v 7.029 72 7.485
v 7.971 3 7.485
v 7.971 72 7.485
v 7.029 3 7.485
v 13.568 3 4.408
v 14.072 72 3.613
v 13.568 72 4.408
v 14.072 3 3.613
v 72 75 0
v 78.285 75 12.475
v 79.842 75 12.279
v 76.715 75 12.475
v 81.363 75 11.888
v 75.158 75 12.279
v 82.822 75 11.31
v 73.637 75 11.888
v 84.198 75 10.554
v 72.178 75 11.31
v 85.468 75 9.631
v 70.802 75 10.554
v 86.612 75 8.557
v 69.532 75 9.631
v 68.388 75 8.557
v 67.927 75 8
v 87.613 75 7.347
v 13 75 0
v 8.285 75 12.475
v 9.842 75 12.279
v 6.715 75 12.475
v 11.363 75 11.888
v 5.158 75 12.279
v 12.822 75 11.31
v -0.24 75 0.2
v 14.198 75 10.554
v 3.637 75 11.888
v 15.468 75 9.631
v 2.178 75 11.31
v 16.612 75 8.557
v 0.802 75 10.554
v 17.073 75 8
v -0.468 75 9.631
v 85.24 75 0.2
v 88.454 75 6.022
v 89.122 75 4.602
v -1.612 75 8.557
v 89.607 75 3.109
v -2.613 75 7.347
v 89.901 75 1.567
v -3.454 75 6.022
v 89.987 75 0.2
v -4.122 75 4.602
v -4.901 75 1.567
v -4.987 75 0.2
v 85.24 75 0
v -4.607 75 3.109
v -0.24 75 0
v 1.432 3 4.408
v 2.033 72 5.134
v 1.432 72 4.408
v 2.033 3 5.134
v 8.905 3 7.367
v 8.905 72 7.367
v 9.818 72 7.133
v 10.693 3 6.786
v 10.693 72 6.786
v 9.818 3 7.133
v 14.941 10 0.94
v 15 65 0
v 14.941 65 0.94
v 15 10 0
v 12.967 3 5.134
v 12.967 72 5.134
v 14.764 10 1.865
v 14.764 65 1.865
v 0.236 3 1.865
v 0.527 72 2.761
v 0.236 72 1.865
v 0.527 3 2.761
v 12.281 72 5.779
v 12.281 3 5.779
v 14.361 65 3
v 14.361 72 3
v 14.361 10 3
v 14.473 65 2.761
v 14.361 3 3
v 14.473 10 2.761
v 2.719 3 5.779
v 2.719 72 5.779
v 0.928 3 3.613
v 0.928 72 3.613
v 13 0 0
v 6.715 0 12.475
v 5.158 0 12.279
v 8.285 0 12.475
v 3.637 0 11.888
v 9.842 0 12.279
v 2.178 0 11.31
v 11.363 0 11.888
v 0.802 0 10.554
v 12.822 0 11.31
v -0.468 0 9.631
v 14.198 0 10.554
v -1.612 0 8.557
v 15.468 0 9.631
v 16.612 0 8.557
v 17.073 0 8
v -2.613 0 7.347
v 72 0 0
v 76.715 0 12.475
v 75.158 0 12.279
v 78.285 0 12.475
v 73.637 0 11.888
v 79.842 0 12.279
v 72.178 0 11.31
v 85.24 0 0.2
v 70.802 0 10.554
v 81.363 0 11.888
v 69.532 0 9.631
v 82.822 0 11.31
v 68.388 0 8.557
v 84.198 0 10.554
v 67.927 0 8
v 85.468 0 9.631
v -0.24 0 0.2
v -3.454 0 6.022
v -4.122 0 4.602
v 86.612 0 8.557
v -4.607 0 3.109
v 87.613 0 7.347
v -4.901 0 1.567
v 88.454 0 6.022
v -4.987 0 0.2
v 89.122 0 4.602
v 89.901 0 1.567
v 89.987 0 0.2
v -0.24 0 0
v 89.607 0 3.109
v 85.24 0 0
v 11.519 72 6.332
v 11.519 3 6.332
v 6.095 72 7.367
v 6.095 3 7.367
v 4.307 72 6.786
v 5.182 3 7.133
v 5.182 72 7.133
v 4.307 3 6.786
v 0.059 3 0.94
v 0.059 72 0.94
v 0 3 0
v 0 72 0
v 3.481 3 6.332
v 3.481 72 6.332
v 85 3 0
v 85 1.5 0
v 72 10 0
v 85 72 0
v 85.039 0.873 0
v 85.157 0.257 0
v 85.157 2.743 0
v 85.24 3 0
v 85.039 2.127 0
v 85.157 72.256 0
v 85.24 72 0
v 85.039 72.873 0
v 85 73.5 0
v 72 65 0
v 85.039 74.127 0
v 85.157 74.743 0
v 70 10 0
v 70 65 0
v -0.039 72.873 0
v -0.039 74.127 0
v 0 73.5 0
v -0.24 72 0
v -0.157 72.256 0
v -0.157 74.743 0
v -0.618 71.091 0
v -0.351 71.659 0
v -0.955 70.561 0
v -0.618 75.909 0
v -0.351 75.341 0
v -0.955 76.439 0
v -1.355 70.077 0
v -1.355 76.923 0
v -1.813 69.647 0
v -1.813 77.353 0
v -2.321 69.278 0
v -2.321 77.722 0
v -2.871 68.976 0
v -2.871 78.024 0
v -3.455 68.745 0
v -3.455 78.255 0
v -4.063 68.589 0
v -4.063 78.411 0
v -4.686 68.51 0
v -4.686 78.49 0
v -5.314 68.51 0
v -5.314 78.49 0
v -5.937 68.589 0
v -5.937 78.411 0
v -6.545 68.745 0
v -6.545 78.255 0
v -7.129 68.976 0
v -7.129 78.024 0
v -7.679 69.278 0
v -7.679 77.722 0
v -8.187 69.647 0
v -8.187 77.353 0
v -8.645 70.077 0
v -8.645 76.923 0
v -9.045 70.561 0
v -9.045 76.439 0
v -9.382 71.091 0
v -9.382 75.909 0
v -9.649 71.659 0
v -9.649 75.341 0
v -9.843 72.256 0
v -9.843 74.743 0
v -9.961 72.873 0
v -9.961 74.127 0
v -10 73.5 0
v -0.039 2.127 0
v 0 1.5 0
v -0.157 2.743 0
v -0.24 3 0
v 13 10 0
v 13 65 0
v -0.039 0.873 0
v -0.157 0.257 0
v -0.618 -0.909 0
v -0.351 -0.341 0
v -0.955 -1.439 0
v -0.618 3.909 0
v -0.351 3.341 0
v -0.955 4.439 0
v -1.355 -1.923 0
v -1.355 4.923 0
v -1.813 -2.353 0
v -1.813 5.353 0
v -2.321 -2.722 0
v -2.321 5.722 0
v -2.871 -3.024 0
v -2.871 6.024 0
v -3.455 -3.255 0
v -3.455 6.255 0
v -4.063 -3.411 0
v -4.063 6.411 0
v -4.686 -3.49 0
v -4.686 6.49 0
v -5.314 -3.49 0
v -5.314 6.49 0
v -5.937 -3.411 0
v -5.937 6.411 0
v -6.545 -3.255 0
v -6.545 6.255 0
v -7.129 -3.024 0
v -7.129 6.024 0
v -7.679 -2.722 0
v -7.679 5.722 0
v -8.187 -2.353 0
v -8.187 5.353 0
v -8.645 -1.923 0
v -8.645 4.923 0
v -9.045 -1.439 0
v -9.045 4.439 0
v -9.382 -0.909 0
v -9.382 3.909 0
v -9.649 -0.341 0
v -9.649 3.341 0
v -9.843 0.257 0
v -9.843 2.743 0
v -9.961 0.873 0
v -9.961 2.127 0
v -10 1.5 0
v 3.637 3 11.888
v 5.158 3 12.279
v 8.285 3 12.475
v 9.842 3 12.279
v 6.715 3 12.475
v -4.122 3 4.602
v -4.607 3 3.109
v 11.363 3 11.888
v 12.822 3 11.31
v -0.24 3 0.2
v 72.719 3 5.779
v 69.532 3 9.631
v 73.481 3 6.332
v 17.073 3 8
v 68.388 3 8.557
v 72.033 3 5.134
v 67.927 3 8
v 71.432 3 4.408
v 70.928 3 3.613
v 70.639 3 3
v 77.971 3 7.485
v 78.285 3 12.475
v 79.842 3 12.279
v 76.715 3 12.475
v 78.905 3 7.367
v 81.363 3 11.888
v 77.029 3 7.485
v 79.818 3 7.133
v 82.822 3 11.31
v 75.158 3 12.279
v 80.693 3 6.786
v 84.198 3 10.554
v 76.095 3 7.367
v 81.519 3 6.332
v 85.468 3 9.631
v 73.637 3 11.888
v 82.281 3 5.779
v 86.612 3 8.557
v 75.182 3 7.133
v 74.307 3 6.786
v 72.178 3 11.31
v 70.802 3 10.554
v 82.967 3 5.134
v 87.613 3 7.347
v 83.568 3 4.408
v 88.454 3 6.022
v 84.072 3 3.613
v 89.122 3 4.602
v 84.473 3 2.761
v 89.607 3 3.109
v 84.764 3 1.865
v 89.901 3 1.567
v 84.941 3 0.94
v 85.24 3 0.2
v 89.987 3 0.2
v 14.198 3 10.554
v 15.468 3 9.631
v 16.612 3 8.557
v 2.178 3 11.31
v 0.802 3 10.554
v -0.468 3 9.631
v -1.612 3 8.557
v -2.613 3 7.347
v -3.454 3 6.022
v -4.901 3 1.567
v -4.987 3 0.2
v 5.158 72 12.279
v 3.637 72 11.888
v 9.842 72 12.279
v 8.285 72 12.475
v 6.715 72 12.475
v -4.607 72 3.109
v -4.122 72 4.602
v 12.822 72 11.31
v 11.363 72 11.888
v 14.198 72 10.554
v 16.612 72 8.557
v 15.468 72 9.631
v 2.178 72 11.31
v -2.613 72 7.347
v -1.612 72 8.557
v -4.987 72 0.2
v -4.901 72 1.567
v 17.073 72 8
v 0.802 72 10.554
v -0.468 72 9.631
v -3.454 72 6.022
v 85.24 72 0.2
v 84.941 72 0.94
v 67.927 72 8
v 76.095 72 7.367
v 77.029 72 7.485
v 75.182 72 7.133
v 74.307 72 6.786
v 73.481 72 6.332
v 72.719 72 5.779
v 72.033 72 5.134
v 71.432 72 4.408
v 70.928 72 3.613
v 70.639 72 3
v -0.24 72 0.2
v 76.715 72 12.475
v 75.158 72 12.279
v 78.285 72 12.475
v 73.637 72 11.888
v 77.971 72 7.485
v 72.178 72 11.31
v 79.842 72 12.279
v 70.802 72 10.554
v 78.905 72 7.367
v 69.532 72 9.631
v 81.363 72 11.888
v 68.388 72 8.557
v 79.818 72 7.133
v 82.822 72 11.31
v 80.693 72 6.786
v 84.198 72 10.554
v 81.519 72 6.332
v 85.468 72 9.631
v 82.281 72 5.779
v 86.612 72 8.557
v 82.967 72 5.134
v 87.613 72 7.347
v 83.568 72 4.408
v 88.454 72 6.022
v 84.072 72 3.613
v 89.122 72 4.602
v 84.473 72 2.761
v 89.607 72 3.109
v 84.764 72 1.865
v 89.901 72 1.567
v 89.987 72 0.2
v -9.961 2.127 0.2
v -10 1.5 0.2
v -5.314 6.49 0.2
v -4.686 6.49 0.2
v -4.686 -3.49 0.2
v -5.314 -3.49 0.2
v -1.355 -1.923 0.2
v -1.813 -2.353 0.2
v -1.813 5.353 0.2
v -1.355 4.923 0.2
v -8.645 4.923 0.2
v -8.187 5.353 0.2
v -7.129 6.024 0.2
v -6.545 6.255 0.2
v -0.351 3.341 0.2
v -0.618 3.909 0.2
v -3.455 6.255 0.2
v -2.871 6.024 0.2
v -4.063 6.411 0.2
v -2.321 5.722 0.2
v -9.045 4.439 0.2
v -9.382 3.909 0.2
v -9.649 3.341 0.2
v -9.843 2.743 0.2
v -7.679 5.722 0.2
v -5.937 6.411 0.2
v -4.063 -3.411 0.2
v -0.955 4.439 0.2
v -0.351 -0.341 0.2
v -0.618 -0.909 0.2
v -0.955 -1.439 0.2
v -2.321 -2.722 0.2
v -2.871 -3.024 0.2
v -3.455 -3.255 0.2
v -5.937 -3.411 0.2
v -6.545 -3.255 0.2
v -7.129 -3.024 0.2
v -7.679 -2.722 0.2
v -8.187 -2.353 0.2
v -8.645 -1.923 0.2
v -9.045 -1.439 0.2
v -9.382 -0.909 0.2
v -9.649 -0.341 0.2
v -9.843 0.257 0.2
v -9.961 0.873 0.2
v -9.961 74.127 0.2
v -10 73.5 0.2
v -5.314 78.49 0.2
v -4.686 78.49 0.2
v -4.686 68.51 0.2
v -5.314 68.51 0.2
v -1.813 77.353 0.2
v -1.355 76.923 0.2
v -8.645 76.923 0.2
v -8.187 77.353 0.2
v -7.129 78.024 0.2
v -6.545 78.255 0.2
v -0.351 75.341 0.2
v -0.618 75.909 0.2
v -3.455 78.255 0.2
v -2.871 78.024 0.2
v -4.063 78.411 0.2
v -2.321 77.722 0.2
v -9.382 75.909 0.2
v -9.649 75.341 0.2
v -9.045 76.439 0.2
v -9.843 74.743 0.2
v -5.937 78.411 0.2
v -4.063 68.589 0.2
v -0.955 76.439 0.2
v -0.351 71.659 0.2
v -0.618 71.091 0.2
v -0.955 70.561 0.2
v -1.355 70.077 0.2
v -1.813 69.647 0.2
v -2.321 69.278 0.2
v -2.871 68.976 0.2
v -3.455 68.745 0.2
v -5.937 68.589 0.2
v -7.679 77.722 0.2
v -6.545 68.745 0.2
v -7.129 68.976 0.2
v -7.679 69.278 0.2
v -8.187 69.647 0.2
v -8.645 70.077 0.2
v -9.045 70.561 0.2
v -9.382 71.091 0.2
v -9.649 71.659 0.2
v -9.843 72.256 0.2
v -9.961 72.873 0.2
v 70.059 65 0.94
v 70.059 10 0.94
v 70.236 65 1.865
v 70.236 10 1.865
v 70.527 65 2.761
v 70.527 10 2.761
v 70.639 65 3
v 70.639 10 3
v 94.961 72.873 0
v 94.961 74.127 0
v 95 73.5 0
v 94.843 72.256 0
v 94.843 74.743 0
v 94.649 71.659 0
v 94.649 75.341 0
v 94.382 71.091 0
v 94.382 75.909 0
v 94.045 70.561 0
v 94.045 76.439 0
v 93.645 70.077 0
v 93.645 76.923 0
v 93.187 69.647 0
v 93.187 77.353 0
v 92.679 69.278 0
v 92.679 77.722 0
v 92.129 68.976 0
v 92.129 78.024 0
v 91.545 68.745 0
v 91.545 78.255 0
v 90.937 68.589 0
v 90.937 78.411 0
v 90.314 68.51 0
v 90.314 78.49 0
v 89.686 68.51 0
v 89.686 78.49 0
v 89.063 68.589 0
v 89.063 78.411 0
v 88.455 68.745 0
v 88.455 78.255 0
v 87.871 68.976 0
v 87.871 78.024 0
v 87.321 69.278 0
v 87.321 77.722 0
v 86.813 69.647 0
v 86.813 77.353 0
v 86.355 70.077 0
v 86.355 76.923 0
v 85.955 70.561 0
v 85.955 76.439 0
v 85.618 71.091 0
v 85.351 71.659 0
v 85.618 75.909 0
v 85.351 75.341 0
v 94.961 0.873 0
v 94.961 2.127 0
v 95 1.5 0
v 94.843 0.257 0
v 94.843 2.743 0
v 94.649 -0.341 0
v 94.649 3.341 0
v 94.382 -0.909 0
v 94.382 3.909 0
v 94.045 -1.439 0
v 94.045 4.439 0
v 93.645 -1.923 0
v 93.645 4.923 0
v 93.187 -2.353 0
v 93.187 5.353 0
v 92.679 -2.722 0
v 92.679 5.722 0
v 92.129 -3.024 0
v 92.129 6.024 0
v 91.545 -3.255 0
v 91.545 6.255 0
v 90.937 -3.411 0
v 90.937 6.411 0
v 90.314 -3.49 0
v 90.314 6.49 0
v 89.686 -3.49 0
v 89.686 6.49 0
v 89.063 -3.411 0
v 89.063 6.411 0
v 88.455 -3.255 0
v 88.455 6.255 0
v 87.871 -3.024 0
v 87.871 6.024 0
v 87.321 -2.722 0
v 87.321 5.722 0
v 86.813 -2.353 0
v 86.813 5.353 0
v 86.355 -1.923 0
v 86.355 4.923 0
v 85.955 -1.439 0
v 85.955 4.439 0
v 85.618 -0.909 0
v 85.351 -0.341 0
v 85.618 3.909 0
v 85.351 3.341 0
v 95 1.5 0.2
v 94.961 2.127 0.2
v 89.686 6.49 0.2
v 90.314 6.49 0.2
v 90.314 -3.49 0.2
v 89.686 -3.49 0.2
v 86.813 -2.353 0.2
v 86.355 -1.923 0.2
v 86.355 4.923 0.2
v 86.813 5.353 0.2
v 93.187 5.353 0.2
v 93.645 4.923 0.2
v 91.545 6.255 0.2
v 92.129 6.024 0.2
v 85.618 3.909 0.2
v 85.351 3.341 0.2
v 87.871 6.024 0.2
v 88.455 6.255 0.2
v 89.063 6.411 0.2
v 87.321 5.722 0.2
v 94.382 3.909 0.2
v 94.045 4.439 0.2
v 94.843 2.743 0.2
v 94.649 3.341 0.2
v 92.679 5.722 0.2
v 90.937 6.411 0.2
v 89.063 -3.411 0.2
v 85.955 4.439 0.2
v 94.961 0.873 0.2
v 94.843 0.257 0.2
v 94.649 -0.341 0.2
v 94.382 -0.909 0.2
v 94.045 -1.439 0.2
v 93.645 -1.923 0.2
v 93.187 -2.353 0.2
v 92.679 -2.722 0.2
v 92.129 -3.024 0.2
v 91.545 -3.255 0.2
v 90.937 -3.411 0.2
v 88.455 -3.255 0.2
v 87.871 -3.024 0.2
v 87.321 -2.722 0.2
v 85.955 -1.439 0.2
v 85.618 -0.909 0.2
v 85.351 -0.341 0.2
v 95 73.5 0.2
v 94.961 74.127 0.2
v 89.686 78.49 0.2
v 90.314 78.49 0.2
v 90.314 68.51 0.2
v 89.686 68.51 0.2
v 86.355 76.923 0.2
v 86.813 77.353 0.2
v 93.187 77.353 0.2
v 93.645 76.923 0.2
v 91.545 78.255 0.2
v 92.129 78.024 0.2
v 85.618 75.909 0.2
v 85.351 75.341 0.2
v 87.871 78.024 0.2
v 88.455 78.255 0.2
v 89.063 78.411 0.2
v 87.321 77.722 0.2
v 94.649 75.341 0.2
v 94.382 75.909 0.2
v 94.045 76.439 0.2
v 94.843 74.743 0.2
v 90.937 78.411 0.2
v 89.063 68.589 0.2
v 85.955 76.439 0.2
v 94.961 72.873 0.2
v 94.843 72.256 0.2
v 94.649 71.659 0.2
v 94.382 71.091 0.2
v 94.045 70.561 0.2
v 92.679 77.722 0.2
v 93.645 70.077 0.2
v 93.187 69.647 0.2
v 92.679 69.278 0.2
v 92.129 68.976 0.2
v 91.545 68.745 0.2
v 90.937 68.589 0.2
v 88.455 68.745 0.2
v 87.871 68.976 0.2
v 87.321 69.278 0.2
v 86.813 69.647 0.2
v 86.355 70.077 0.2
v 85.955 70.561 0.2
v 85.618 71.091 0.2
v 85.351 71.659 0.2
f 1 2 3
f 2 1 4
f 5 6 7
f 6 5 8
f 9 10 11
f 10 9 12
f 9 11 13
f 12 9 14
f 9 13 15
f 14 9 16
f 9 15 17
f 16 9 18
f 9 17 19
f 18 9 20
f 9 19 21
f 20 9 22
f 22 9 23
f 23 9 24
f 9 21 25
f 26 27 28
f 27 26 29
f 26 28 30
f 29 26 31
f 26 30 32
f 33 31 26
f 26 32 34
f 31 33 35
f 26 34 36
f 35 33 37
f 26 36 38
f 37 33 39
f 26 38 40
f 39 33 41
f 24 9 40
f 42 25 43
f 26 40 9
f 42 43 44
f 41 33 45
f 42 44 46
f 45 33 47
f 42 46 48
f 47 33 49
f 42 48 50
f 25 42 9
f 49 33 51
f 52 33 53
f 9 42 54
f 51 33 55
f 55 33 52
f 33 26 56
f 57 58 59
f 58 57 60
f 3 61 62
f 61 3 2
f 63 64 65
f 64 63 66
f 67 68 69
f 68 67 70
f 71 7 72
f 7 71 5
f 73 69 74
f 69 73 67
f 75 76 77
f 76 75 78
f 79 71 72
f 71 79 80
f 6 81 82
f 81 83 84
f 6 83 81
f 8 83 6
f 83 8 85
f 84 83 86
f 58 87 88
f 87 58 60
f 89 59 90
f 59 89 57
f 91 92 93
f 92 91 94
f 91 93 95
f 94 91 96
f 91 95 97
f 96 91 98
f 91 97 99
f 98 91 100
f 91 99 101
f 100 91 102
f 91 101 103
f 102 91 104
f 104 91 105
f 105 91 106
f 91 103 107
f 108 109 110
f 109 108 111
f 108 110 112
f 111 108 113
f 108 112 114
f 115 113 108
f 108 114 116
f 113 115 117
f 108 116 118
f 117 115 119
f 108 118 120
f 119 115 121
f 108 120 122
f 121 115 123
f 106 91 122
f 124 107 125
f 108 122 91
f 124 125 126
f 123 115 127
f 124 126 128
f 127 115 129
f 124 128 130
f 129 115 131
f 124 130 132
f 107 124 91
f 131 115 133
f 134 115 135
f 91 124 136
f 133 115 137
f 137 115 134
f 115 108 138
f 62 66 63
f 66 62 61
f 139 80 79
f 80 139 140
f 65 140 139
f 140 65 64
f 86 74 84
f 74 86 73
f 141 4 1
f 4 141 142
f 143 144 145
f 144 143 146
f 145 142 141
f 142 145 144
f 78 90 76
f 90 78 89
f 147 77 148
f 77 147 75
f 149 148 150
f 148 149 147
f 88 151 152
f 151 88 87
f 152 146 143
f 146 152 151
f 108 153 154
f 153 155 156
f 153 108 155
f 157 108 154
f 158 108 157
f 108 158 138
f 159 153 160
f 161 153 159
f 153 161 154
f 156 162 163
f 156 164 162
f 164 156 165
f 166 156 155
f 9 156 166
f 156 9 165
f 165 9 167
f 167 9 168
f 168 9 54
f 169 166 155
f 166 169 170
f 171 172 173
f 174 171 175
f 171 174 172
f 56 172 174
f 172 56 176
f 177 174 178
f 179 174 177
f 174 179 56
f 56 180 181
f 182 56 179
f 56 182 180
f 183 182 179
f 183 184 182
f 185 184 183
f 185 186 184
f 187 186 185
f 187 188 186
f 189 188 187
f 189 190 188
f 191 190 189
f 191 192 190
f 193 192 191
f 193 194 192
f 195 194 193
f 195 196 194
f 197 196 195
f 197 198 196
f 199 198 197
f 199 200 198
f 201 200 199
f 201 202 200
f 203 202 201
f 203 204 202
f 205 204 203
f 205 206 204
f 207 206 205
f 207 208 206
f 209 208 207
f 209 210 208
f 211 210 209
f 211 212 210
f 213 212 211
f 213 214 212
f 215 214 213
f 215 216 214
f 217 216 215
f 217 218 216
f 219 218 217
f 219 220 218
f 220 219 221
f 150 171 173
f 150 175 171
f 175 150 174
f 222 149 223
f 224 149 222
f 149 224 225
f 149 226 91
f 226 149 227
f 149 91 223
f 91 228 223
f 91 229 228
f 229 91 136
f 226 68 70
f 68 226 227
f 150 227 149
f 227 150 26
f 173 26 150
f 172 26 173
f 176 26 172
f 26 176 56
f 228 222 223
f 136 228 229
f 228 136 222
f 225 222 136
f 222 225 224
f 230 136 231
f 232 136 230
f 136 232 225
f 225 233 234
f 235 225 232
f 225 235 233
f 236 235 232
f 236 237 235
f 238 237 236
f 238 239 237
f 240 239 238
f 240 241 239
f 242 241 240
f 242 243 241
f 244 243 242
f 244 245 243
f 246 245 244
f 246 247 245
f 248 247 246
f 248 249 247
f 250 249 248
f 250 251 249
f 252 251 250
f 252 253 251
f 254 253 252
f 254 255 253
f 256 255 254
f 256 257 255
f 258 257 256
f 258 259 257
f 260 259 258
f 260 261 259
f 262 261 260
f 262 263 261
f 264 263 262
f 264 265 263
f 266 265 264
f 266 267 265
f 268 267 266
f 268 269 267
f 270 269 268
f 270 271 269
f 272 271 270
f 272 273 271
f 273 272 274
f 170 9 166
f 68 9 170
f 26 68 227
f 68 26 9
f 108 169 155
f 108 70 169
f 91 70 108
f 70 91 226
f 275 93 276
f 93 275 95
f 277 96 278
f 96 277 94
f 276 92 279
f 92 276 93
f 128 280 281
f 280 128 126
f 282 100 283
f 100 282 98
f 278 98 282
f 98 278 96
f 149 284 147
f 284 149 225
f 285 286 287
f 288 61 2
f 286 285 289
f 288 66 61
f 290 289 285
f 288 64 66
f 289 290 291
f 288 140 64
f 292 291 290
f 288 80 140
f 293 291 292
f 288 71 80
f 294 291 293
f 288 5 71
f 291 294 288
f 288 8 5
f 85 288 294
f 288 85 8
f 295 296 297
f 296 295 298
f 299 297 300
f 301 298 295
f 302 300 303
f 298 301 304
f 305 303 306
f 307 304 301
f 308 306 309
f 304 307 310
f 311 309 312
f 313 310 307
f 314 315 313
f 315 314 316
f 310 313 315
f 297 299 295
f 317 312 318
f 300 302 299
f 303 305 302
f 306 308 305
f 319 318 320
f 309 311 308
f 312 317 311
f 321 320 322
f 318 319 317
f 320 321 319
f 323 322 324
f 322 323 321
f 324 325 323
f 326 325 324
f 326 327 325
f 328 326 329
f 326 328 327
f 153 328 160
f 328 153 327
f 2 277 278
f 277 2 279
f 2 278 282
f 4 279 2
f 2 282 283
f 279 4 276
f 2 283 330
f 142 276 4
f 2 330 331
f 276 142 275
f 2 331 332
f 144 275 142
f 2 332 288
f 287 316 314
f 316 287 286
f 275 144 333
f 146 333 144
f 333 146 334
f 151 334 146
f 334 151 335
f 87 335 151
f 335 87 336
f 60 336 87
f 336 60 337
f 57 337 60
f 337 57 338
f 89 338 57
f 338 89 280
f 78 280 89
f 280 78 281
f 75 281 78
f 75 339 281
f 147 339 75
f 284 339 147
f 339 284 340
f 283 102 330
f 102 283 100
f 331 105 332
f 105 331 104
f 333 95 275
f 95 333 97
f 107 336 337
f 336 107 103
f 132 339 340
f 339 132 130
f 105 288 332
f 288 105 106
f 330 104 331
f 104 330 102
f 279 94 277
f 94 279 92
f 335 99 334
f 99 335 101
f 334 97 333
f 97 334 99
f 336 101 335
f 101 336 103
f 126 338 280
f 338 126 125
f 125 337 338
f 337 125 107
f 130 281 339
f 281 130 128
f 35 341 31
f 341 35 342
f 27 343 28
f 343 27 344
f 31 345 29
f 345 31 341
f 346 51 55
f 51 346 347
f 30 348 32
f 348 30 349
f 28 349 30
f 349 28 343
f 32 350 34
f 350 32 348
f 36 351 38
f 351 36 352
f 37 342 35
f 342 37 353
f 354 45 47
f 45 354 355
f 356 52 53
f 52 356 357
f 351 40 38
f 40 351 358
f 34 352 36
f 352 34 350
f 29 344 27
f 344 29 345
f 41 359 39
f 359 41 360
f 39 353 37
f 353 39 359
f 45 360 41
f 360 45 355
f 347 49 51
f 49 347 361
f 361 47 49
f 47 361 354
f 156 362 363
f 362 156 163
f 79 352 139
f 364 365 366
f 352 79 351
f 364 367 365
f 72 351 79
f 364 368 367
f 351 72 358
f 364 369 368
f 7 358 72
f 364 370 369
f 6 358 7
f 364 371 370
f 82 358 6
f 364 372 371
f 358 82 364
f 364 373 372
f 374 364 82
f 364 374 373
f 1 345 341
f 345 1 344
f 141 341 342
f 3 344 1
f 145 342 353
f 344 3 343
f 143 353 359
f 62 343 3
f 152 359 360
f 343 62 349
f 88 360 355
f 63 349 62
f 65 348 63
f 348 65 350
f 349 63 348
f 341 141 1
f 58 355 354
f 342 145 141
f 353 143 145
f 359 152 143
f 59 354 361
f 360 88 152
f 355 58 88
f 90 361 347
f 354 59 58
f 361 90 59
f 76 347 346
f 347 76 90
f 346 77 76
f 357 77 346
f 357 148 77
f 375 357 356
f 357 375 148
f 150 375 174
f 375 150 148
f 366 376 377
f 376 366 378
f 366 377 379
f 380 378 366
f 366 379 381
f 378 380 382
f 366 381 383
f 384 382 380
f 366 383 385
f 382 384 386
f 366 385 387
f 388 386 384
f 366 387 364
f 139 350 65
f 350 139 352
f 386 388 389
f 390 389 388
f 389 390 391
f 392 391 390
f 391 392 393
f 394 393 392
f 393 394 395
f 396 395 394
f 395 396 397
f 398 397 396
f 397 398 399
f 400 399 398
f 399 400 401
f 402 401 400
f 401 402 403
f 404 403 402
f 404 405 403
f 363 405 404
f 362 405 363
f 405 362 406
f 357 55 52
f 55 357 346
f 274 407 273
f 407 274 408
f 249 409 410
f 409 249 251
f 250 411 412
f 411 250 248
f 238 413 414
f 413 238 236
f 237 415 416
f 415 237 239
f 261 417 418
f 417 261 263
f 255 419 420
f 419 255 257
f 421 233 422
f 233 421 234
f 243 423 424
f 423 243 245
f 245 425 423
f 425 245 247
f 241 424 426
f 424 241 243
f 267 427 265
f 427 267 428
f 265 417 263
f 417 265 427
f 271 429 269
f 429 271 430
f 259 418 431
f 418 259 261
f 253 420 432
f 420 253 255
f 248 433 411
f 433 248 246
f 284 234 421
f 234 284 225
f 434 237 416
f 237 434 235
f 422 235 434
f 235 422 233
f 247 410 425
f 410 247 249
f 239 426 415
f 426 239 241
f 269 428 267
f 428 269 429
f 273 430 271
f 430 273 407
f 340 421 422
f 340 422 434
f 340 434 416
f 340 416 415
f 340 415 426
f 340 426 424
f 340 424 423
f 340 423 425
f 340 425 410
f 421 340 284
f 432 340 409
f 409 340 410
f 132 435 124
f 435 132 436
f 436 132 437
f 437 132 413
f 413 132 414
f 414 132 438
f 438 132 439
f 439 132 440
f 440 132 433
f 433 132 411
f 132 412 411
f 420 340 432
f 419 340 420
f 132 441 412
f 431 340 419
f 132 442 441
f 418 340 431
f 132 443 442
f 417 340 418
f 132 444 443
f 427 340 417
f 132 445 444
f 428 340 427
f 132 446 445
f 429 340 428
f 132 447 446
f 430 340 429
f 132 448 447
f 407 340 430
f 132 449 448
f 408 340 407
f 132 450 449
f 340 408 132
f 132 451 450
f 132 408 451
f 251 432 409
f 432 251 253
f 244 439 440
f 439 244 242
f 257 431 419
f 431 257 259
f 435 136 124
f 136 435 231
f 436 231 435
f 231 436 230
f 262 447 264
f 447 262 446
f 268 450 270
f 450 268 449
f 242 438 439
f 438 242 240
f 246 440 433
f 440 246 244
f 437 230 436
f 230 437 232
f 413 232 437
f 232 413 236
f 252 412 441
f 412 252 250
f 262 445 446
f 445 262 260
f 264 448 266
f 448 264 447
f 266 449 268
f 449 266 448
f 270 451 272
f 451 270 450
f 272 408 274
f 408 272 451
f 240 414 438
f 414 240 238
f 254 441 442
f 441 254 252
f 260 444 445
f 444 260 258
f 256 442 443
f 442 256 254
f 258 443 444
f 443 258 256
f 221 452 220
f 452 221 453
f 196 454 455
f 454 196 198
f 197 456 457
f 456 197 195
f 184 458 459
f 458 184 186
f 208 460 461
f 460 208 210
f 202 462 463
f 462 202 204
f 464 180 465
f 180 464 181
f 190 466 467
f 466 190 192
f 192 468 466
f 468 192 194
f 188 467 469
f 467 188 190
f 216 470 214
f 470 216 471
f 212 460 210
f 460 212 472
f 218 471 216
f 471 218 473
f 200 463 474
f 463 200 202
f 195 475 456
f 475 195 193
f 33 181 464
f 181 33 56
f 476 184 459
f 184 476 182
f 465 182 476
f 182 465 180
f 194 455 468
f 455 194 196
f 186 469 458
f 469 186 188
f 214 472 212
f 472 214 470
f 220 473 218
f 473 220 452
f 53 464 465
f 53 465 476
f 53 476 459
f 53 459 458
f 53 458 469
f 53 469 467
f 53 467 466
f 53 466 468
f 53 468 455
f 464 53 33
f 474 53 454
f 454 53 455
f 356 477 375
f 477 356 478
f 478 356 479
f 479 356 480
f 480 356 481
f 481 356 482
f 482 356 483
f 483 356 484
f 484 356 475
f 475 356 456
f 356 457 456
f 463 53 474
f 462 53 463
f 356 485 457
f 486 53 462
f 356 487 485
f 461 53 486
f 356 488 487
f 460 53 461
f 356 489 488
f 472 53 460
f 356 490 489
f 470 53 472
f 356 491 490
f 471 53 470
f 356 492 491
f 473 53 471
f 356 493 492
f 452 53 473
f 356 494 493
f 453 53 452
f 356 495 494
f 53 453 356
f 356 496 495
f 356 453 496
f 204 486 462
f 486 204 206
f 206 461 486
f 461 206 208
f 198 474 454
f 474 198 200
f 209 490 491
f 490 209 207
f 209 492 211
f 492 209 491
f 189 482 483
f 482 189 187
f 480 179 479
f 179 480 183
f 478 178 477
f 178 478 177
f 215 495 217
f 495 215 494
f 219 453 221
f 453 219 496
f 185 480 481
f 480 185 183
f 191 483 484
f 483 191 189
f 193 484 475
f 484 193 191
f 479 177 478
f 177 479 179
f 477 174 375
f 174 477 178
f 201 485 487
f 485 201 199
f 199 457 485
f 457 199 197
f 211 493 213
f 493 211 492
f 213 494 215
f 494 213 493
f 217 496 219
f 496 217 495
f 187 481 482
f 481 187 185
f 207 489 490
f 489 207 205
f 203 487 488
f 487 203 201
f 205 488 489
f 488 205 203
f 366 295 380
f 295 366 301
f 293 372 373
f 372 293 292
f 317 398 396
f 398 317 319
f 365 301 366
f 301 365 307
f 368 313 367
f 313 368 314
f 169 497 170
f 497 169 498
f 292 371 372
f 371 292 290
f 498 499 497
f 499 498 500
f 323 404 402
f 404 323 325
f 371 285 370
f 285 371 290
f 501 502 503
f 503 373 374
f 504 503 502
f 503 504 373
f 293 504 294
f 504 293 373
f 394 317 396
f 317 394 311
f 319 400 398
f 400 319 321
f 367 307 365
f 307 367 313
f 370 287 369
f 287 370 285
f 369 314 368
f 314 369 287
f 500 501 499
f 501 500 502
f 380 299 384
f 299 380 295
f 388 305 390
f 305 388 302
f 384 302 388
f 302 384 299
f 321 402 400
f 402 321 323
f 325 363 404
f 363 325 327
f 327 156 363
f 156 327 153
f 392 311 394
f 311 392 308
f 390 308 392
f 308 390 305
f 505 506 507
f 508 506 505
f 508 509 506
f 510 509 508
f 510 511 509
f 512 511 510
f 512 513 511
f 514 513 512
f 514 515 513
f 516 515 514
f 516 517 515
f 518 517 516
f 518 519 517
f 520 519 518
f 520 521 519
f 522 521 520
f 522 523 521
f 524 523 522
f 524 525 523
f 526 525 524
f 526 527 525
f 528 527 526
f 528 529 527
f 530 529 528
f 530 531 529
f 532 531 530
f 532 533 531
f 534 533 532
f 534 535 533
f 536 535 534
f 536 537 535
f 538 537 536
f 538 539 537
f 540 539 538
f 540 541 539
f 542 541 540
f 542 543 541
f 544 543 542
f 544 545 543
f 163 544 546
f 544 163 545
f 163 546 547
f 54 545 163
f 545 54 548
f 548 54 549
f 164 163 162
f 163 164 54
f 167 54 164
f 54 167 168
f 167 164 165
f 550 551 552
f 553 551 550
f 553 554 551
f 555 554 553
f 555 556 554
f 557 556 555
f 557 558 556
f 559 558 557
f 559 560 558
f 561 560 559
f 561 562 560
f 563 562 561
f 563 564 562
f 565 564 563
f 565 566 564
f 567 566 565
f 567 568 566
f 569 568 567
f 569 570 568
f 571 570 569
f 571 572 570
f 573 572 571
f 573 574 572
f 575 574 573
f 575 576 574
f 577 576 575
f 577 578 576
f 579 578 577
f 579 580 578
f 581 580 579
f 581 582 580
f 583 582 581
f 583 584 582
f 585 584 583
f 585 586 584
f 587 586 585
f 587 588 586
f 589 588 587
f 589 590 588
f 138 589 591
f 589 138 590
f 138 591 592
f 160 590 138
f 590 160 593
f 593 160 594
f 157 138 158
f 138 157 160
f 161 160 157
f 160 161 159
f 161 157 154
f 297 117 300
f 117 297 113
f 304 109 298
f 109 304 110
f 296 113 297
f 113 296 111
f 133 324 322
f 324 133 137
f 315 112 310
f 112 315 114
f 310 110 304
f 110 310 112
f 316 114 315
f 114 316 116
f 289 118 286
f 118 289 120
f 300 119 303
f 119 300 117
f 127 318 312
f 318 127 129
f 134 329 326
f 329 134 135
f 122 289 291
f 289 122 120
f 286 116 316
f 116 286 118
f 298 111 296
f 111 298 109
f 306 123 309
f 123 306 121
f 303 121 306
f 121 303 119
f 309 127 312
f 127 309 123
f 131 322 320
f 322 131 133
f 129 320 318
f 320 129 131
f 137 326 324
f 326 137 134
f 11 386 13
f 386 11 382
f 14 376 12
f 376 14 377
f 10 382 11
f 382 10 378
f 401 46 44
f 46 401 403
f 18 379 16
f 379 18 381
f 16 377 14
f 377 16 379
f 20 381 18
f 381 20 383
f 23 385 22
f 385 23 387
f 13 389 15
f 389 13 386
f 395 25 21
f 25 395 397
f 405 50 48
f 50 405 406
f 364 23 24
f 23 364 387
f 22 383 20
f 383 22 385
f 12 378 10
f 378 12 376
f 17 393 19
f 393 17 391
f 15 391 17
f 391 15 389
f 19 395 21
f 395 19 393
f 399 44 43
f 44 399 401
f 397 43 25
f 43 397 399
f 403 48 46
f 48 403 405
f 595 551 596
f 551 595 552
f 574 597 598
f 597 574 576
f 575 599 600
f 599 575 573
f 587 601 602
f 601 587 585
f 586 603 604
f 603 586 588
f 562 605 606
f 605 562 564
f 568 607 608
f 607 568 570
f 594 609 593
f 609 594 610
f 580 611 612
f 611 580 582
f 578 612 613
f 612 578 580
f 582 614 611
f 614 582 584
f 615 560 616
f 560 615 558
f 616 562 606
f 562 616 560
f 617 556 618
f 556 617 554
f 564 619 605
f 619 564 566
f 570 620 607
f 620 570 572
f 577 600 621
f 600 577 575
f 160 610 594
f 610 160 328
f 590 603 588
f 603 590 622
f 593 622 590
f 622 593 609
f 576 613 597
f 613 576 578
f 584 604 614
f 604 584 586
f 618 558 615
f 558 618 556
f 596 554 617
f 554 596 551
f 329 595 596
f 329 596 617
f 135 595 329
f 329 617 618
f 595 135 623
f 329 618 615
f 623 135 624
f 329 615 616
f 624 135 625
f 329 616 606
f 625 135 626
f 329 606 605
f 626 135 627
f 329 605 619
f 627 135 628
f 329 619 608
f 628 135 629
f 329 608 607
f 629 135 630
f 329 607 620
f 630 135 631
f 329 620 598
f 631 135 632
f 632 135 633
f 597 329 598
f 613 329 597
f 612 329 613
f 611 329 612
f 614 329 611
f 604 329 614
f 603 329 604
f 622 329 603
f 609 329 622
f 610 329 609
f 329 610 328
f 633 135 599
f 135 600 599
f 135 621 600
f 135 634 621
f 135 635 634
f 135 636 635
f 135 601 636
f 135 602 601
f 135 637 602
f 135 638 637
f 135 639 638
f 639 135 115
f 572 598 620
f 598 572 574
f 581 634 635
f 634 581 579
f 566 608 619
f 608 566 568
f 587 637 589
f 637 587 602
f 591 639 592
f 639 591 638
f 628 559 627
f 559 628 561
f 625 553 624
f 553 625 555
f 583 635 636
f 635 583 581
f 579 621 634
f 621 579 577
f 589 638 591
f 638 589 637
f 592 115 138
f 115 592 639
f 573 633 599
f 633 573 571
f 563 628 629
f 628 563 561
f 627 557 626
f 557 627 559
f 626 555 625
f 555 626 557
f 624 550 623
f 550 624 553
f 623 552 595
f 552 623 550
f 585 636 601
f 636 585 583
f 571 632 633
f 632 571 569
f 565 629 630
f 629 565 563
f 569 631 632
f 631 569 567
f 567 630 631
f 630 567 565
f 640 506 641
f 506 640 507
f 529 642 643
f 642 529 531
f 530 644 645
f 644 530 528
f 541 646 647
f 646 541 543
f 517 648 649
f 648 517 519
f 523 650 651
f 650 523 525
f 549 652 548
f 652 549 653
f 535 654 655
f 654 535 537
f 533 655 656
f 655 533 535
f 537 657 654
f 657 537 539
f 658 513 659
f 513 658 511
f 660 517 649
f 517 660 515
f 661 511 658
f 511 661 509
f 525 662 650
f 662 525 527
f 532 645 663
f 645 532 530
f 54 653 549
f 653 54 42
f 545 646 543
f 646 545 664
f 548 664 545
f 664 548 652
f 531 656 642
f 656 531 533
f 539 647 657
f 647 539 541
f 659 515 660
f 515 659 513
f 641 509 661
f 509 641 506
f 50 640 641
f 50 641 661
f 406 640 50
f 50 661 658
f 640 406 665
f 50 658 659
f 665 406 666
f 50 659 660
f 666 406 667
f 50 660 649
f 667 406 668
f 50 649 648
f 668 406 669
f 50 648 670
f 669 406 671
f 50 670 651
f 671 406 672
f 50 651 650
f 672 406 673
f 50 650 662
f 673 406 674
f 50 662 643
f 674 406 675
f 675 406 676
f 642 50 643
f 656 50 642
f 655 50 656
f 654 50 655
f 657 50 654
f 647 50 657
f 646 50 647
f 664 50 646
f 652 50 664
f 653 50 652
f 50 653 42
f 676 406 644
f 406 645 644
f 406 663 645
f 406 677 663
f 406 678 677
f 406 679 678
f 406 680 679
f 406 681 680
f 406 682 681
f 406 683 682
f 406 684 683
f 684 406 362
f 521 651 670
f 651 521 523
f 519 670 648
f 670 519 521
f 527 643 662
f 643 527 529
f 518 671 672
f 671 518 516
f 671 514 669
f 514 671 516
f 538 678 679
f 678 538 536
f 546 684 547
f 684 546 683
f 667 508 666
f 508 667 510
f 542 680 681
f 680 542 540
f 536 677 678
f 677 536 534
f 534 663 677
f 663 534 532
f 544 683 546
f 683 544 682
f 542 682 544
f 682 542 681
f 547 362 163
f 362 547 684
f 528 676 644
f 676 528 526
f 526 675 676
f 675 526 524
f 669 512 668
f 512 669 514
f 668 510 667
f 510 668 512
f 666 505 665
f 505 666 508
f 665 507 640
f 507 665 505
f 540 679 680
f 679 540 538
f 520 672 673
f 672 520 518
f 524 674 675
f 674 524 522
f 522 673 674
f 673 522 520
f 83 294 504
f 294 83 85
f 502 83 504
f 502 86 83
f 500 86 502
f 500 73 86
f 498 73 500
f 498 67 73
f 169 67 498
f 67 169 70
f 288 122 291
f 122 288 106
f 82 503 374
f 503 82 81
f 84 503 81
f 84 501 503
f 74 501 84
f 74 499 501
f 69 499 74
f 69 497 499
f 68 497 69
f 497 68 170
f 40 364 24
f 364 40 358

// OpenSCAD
$fn=50;

width=75;
distance=55;
supportRadius=7.5;
thickness=3;
holderWidth=10;
borderHeight=5;
borderWidth=3;
hasEars=true;

translate([supportRadius*2-2,0,0]) cube([distance+2+2,holderWidth,thickness]);
translate([supportRadius*2-2,0,thickness-1]) cube([distance+2+2,borderWidth,borderHeight+1]);

translate([supportRadius*2-2,width-holderWidth,0]) cube([distance+2+2,holderWidth,thickness]);
translate([supportRadius*2-2,width-borderWidth,thickness-1]) cube([distance+2+2,borderWidth,borderHeight+1]);

support();
translate([distance+2*2*supportRadius,0,0]) mirror([1,0,0]) support();

module support()
{
    translate([supportRadius,0,0]) 
    rotate([-90,0,0]) 
    difference()
    {
        cylinder(h = width, r = supportRadius);
        translate([-supportRadius-1,0,-1])cube([supportRadius*2+2,supportRadius+1,width+2]);
    }

    translate([supportRadius,0,0]) 
    rotate([-90,0,0]) 
    difference()
    {   
        cylinder(h = borderWidth, r = supportRadius+borderHeight);
        translate([-supportRadius-borderHeight-1,0,-1])cube([(supportRadius+borderHeight)*2+2,supportRadius+borderHeight+1,width+2]);
    }
    if (hasEars)
    {
        translate([-borderHeight,borderWidth/2])ear();
    }

    translate([supportRadius,width-borderWidth,0]) 
    rotate([-90,0,0]) 
    difference()
    {   
        cylinder(h = borderWidth, r = supportRadius+borderHeight);
        translate([-supportRadius-borderHeight-1,0,-1])cube([(supportRadius+borderHeight)*2+2,supportRadius+borderHeight+1,width+2]);
    }
    if (hasEars)
    {
        translate([-borderHeight,width-borderWidth/2])ear();
    }
}

module ear()
{
    cylinder(h = 0.2, r = 5);
}
